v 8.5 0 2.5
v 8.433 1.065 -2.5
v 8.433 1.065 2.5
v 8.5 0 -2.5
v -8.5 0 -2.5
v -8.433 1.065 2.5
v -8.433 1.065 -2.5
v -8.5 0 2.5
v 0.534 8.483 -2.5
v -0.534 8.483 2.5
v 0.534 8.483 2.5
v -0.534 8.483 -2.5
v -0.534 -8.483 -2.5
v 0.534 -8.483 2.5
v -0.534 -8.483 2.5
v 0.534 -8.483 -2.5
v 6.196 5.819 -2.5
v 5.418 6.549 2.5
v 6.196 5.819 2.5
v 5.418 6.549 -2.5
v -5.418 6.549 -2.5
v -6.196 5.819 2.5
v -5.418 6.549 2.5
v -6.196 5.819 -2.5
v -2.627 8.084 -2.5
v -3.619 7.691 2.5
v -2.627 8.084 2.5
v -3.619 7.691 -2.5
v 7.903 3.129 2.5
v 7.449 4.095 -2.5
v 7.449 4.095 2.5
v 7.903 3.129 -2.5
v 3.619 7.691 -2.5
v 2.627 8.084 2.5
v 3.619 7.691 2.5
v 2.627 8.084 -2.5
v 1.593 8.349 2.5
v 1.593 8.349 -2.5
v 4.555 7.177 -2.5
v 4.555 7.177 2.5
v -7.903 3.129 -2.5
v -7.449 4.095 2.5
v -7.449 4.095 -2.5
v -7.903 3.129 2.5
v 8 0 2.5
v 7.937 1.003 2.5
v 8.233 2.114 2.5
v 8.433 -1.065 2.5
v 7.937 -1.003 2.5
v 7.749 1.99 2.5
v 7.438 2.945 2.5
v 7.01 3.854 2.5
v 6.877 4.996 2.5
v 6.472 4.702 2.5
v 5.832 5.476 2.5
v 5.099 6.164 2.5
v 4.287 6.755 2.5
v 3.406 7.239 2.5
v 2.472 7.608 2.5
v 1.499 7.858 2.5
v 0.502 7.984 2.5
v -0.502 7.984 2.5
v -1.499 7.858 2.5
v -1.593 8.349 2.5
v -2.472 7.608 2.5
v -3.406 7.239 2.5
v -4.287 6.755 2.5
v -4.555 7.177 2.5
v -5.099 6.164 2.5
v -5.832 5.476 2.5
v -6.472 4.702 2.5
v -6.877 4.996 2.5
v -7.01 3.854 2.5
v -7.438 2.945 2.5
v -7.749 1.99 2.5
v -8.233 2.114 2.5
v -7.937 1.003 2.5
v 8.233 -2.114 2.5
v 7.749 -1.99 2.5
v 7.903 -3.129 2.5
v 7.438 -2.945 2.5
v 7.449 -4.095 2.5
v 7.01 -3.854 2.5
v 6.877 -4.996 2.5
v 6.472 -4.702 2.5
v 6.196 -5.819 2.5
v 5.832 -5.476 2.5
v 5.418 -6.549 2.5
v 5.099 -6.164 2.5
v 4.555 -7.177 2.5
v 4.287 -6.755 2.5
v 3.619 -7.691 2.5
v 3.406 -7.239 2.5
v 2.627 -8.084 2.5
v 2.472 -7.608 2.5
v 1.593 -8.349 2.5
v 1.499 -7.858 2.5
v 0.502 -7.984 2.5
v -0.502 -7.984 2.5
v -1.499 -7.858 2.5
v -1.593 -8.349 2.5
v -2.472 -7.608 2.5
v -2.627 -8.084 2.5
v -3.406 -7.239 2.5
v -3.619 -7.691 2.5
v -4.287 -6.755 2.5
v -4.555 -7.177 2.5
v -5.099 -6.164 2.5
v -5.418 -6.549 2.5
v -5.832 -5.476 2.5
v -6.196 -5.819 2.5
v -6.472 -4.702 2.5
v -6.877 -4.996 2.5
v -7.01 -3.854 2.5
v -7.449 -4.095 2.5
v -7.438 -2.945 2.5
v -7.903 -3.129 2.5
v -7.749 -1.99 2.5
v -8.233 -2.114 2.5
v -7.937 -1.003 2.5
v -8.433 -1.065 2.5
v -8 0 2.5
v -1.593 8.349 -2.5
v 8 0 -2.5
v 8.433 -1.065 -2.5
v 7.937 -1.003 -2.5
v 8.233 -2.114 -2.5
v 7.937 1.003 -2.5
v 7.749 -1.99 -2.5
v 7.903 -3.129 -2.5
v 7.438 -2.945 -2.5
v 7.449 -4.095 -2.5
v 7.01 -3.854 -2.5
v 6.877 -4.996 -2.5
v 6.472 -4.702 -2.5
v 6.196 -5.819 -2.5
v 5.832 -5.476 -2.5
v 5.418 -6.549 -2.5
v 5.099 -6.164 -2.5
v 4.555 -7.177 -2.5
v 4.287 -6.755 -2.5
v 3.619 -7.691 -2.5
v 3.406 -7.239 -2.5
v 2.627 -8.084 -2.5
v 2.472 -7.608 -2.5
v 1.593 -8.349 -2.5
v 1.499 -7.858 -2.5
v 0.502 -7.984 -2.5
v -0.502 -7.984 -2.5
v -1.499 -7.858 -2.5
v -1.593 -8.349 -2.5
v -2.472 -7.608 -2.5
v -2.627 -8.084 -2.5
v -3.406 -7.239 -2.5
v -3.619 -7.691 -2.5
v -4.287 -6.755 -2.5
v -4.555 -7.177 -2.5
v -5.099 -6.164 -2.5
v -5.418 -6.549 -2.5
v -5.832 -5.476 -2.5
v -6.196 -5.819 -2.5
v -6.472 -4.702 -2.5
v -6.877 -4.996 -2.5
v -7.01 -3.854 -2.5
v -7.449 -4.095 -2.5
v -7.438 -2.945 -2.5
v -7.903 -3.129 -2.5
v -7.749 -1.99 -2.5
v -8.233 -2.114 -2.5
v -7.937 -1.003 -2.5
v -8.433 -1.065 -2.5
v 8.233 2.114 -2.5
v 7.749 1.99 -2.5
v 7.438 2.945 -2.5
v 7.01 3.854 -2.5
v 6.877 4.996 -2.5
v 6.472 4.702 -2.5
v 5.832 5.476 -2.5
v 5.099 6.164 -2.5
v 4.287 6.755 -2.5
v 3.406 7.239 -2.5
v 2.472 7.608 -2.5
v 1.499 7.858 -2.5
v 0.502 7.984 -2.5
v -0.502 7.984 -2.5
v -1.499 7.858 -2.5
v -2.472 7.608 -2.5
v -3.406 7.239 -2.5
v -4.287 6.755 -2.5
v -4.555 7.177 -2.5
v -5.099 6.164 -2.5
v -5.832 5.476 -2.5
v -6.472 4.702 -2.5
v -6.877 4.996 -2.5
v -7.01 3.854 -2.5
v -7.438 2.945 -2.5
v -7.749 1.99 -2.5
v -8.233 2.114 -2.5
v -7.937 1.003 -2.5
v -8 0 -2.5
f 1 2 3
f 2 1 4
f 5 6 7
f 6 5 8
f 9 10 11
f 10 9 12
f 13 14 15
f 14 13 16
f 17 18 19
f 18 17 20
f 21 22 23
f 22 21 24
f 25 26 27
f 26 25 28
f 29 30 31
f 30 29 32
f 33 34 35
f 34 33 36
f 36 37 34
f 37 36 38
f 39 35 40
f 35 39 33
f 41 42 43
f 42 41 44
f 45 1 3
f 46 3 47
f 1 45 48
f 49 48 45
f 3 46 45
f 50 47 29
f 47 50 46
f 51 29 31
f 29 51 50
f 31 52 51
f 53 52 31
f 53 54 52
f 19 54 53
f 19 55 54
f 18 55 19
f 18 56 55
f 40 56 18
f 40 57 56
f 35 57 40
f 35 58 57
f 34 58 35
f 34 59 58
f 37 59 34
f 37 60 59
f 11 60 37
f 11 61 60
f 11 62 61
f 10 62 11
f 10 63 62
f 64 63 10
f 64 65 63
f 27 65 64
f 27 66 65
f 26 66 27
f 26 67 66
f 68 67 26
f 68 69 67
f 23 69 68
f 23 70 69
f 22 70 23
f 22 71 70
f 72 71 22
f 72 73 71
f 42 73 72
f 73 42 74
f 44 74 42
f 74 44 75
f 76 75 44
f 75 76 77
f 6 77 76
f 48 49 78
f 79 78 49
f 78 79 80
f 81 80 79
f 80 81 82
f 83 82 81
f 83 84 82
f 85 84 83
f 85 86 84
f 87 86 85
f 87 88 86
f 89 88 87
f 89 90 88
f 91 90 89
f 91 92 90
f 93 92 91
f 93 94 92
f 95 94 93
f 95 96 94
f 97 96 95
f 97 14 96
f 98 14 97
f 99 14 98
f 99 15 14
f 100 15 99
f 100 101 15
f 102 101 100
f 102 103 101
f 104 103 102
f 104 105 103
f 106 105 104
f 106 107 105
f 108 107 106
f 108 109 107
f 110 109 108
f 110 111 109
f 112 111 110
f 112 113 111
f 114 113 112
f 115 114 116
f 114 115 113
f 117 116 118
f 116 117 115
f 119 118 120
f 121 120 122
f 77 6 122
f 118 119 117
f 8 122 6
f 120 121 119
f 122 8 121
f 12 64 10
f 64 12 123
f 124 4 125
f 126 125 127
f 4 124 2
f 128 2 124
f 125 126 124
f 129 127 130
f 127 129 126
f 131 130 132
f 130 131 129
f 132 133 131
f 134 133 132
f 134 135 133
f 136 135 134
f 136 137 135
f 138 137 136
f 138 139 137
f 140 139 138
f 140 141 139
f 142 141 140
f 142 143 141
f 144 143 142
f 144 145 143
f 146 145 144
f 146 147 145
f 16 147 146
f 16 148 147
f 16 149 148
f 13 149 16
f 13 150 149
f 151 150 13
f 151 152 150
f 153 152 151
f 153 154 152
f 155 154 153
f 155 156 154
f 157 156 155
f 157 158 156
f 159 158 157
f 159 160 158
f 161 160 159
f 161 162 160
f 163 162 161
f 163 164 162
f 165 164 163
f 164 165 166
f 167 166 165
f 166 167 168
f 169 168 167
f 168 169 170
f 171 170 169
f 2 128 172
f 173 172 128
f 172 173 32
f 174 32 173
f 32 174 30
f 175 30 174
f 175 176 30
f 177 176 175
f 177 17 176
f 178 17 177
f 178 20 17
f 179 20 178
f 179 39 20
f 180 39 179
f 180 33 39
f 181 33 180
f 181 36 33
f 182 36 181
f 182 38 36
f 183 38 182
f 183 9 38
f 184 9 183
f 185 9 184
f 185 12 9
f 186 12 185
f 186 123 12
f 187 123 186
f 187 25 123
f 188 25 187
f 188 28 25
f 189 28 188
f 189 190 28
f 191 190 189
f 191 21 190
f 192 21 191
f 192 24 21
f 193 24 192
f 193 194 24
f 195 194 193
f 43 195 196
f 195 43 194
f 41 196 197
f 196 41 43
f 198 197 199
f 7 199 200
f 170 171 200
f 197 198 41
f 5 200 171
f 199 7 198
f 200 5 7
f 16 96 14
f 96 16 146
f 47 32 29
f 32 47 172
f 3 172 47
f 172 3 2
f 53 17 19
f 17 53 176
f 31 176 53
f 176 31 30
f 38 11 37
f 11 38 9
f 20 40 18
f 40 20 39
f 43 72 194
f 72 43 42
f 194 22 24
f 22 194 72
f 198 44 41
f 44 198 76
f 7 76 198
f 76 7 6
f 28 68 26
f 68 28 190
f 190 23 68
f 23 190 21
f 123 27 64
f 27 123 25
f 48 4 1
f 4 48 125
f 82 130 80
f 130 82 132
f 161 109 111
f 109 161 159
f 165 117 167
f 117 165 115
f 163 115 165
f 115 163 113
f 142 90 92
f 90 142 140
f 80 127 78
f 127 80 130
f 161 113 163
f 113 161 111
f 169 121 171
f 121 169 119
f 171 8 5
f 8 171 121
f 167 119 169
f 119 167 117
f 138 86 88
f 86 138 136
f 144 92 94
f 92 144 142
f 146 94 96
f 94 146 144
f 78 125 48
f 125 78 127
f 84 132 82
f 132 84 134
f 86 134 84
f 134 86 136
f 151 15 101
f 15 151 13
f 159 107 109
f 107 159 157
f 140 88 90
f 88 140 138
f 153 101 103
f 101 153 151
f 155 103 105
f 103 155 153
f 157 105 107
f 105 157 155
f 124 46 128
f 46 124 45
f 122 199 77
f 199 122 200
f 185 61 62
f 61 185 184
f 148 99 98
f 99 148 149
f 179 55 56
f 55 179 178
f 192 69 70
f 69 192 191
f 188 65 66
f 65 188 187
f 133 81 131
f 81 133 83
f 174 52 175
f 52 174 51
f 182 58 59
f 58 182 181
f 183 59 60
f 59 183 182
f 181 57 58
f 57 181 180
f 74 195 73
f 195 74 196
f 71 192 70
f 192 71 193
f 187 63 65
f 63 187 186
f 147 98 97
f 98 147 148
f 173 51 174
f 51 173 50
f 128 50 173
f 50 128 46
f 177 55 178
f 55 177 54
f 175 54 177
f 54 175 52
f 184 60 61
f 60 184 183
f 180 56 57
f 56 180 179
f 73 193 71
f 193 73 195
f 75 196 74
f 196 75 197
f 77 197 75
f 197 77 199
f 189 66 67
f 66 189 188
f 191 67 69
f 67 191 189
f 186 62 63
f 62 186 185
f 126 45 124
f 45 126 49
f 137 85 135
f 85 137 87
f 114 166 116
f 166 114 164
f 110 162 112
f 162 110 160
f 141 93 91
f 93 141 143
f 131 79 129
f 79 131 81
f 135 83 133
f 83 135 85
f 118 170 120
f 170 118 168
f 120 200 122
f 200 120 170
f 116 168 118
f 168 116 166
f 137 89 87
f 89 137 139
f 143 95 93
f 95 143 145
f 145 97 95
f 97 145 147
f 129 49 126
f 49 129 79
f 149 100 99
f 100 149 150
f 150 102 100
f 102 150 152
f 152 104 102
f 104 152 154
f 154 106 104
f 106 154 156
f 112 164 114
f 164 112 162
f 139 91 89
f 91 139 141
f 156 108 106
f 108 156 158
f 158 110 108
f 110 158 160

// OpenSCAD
$fn = 50;


difference() {
	union() {
		translate(v = [0, 0, -2.5000000000]) {
			cylinder(h = 5, r = 8.5000000000);
		}
	}
	union() {
		translate(v = [0, 0, -100.0000000000]) {
			cylinder(h = 200, r = 8);
		}
	}
}
